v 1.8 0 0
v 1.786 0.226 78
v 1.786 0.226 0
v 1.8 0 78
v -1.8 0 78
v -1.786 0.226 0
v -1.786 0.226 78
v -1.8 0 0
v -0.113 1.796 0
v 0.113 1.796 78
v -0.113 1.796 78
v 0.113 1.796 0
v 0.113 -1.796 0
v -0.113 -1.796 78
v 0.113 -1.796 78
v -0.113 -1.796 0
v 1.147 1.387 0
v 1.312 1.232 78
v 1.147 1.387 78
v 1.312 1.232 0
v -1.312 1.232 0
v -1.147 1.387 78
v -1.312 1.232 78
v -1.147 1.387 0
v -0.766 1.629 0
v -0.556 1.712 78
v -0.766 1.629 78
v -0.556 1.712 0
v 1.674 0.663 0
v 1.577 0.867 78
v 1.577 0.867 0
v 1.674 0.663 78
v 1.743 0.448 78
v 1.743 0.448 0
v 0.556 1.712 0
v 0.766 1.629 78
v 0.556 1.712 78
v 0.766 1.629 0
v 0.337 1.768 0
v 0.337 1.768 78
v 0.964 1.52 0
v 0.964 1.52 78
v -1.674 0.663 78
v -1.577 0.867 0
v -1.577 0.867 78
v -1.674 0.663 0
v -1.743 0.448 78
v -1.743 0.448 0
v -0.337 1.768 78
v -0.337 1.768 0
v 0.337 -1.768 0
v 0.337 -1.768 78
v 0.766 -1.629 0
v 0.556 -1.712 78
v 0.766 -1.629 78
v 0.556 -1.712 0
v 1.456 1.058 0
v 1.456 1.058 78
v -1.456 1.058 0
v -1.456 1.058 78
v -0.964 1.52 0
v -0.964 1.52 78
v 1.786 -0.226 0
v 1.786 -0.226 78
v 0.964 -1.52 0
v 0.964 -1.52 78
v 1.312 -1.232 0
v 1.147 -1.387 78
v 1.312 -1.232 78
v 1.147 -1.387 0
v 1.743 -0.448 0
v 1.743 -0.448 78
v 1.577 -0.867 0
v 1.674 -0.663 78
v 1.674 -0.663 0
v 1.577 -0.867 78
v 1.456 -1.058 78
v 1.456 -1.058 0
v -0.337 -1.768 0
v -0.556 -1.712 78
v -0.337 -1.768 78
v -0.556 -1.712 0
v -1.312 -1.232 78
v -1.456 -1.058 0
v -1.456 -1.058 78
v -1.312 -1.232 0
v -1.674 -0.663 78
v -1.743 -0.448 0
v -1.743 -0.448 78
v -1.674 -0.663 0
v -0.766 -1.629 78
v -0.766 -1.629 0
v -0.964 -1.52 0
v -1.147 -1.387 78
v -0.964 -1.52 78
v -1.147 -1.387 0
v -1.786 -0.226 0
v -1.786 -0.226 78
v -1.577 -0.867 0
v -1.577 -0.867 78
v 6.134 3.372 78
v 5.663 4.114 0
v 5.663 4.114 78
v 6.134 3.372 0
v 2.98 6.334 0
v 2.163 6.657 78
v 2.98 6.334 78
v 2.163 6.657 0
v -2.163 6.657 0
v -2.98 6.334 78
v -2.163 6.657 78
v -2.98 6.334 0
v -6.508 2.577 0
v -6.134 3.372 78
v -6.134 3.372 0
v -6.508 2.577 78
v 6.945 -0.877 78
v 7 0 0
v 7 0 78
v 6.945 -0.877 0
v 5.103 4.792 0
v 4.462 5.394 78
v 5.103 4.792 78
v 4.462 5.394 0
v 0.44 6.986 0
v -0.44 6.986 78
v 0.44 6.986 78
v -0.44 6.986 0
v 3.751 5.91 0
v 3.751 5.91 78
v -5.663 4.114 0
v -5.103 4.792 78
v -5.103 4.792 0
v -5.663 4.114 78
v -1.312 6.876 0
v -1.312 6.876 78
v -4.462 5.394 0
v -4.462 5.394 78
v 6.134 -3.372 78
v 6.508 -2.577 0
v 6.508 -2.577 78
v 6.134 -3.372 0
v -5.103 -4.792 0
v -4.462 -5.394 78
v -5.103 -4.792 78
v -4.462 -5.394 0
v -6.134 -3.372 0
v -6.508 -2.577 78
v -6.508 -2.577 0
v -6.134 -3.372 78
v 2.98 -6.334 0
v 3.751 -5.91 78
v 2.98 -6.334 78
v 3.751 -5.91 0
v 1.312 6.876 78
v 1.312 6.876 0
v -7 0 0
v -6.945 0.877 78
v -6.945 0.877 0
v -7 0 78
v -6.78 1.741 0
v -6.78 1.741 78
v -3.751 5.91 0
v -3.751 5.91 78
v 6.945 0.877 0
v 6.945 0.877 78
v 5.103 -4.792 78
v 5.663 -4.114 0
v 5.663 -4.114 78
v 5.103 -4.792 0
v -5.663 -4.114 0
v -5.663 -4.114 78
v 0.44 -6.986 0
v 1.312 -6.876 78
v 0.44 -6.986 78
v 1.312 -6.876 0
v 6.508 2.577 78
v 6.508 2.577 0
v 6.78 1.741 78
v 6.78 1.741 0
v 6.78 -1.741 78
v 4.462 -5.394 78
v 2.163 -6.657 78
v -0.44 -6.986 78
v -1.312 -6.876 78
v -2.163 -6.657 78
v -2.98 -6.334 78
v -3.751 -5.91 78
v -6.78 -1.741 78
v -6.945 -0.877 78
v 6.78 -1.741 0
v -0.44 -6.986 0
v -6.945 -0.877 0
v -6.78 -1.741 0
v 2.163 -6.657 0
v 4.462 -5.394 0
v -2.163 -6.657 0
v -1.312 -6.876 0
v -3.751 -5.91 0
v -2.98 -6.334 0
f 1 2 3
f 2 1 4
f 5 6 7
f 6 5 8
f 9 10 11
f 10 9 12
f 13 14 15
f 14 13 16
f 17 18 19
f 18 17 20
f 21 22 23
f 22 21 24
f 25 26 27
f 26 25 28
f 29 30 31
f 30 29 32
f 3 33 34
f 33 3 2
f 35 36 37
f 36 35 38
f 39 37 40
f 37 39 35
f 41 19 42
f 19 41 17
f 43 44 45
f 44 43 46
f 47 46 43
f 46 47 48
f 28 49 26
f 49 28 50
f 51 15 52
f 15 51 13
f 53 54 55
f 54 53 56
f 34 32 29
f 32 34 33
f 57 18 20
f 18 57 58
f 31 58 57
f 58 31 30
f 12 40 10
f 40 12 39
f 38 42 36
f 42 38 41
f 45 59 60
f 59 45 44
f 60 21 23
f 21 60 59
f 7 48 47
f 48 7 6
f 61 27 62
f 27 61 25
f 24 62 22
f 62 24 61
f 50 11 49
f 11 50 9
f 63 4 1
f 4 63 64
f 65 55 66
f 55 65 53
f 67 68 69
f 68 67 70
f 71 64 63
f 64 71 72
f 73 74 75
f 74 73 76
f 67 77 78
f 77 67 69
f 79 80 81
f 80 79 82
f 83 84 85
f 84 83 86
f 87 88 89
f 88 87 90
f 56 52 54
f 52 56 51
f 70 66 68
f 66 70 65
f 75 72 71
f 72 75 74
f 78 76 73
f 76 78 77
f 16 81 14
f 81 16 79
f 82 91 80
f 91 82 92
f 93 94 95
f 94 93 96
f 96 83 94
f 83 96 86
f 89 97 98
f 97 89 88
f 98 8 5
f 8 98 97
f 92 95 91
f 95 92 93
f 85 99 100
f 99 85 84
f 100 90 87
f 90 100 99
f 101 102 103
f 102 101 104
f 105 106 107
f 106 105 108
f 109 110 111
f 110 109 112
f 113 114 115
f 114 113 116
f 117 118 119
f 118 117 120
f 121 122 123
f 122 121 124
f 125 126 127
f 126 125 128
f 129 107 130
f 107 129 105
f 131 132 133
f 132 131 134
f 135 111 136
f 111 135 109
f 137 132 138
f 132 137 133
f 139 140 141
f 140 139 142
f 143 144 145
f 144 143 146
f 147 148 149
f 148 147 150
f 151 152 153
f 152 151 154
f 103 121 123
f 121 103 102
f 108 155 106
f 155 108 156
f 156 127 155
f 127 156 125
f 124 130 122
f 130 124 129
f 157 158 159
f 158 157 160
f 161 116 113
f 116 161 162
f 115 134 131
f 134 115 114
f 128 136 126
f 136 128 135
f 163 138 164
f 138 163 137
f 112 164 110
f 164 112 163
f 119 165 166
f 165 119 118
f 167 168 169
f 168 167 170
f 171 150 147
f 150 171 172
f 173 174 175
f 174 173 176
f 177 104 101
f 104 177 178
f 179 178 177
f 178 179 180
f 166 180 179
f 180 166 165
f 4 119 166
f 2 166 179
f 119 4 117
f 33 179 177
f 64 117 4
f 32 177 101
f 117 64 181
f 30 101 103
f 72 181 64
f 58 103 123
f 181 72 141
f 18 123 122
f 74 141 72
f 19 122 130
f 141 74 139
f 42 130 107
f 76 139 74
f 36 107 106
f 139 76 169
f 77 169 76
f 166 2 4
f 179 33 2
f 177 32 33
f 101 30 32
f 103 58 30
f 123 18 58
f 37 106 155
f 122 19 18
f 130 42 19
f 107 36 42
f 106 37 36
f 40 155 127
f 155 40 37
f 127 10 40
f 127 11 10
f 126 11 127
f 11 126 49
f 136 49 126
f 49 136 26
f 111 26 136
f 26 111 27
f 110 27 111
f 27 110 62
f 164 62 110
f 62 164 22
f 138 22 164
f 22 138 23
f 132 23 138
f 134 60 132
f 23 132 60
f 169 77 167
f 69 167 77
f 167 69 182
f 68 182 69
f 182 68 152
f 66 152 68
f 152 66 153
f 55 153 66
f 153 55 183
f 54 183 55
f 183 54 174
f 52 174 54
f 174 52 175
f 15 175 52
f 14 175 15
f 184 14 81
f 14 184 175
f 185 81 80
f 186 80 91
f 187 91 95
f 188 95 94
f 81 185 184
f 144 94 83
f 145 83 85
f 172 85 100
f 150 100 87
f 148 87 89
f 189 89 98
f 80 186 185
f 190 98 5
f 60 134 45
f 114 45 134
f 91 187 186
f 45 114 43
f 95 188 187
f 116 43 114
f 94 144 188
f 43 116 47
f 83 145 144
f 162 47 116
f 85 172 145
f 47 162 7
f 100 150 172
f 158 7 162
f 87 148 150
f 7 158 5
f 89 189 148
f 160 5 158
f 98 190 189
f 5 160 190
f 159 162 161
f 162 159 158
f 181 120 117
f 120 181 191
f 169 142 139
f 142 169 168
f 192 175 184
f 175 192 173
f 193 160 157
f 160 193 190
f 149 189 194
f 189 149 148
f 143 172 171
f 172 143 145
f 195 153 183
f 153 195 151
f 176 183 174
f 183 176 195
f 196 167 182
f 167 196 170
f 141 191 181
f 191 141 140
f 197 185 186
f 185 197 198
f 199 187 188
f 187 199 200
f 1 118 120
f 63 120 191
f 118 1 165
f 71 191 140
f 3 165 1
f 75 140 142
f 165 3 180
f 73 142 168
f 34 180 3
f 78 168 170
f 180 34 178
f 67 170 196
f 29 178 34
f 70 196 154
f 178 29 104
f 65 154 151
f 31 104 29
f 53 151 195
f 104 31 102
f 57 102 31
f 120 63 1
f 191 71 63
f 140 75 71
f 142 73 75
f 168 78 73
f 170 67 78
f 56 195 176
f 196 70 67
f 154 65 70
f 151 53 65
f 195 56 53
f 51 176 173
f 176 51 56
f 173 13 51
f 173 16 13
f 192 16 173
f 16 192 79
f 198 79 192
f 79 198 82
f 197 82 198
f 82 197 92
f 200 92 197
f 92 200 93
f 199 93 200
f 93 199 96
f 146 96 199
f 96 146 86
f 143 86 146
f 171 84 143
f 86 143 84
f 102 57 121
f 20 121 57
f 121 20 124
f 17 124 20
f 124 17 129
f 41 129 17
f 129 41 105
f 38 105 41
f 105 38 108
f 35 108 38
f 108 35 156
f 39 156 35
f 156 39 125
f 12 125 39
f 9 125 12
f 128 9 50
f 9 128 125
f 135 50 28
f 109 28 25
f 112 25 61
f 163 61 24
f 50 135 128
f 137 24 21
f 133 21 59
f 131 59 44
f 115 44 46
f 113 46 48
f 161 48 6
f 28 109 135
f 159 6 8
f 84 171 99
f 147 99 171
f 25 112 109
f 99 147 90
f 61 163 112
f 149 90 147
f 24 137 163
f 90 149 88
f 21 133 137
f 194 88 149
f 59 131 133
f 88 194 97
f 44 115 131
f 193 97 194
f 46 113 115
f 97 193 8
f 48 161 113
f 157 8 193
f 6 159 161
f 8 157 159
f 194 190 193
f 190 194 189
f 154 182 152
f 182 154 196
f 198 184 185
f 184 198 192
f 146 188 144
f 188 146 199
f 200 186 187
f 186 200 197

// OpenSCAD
$fn = 50;


difference() {
	union() {
		cylinder(h = 78, r = 7.0000000000);
	}
	union() {
		translate(v = [0.0000000000, 0.0000000000, -100.0000000000]) {
			cylinder(h = 200, r = 1.8000000000);
		}
		cylinder(h = 78, r = 1.8000000000);
		cylinder(h = 78, r = 1.8000000000);
		cylinder(h = 78, r = 1.8000000000);
	}
}
